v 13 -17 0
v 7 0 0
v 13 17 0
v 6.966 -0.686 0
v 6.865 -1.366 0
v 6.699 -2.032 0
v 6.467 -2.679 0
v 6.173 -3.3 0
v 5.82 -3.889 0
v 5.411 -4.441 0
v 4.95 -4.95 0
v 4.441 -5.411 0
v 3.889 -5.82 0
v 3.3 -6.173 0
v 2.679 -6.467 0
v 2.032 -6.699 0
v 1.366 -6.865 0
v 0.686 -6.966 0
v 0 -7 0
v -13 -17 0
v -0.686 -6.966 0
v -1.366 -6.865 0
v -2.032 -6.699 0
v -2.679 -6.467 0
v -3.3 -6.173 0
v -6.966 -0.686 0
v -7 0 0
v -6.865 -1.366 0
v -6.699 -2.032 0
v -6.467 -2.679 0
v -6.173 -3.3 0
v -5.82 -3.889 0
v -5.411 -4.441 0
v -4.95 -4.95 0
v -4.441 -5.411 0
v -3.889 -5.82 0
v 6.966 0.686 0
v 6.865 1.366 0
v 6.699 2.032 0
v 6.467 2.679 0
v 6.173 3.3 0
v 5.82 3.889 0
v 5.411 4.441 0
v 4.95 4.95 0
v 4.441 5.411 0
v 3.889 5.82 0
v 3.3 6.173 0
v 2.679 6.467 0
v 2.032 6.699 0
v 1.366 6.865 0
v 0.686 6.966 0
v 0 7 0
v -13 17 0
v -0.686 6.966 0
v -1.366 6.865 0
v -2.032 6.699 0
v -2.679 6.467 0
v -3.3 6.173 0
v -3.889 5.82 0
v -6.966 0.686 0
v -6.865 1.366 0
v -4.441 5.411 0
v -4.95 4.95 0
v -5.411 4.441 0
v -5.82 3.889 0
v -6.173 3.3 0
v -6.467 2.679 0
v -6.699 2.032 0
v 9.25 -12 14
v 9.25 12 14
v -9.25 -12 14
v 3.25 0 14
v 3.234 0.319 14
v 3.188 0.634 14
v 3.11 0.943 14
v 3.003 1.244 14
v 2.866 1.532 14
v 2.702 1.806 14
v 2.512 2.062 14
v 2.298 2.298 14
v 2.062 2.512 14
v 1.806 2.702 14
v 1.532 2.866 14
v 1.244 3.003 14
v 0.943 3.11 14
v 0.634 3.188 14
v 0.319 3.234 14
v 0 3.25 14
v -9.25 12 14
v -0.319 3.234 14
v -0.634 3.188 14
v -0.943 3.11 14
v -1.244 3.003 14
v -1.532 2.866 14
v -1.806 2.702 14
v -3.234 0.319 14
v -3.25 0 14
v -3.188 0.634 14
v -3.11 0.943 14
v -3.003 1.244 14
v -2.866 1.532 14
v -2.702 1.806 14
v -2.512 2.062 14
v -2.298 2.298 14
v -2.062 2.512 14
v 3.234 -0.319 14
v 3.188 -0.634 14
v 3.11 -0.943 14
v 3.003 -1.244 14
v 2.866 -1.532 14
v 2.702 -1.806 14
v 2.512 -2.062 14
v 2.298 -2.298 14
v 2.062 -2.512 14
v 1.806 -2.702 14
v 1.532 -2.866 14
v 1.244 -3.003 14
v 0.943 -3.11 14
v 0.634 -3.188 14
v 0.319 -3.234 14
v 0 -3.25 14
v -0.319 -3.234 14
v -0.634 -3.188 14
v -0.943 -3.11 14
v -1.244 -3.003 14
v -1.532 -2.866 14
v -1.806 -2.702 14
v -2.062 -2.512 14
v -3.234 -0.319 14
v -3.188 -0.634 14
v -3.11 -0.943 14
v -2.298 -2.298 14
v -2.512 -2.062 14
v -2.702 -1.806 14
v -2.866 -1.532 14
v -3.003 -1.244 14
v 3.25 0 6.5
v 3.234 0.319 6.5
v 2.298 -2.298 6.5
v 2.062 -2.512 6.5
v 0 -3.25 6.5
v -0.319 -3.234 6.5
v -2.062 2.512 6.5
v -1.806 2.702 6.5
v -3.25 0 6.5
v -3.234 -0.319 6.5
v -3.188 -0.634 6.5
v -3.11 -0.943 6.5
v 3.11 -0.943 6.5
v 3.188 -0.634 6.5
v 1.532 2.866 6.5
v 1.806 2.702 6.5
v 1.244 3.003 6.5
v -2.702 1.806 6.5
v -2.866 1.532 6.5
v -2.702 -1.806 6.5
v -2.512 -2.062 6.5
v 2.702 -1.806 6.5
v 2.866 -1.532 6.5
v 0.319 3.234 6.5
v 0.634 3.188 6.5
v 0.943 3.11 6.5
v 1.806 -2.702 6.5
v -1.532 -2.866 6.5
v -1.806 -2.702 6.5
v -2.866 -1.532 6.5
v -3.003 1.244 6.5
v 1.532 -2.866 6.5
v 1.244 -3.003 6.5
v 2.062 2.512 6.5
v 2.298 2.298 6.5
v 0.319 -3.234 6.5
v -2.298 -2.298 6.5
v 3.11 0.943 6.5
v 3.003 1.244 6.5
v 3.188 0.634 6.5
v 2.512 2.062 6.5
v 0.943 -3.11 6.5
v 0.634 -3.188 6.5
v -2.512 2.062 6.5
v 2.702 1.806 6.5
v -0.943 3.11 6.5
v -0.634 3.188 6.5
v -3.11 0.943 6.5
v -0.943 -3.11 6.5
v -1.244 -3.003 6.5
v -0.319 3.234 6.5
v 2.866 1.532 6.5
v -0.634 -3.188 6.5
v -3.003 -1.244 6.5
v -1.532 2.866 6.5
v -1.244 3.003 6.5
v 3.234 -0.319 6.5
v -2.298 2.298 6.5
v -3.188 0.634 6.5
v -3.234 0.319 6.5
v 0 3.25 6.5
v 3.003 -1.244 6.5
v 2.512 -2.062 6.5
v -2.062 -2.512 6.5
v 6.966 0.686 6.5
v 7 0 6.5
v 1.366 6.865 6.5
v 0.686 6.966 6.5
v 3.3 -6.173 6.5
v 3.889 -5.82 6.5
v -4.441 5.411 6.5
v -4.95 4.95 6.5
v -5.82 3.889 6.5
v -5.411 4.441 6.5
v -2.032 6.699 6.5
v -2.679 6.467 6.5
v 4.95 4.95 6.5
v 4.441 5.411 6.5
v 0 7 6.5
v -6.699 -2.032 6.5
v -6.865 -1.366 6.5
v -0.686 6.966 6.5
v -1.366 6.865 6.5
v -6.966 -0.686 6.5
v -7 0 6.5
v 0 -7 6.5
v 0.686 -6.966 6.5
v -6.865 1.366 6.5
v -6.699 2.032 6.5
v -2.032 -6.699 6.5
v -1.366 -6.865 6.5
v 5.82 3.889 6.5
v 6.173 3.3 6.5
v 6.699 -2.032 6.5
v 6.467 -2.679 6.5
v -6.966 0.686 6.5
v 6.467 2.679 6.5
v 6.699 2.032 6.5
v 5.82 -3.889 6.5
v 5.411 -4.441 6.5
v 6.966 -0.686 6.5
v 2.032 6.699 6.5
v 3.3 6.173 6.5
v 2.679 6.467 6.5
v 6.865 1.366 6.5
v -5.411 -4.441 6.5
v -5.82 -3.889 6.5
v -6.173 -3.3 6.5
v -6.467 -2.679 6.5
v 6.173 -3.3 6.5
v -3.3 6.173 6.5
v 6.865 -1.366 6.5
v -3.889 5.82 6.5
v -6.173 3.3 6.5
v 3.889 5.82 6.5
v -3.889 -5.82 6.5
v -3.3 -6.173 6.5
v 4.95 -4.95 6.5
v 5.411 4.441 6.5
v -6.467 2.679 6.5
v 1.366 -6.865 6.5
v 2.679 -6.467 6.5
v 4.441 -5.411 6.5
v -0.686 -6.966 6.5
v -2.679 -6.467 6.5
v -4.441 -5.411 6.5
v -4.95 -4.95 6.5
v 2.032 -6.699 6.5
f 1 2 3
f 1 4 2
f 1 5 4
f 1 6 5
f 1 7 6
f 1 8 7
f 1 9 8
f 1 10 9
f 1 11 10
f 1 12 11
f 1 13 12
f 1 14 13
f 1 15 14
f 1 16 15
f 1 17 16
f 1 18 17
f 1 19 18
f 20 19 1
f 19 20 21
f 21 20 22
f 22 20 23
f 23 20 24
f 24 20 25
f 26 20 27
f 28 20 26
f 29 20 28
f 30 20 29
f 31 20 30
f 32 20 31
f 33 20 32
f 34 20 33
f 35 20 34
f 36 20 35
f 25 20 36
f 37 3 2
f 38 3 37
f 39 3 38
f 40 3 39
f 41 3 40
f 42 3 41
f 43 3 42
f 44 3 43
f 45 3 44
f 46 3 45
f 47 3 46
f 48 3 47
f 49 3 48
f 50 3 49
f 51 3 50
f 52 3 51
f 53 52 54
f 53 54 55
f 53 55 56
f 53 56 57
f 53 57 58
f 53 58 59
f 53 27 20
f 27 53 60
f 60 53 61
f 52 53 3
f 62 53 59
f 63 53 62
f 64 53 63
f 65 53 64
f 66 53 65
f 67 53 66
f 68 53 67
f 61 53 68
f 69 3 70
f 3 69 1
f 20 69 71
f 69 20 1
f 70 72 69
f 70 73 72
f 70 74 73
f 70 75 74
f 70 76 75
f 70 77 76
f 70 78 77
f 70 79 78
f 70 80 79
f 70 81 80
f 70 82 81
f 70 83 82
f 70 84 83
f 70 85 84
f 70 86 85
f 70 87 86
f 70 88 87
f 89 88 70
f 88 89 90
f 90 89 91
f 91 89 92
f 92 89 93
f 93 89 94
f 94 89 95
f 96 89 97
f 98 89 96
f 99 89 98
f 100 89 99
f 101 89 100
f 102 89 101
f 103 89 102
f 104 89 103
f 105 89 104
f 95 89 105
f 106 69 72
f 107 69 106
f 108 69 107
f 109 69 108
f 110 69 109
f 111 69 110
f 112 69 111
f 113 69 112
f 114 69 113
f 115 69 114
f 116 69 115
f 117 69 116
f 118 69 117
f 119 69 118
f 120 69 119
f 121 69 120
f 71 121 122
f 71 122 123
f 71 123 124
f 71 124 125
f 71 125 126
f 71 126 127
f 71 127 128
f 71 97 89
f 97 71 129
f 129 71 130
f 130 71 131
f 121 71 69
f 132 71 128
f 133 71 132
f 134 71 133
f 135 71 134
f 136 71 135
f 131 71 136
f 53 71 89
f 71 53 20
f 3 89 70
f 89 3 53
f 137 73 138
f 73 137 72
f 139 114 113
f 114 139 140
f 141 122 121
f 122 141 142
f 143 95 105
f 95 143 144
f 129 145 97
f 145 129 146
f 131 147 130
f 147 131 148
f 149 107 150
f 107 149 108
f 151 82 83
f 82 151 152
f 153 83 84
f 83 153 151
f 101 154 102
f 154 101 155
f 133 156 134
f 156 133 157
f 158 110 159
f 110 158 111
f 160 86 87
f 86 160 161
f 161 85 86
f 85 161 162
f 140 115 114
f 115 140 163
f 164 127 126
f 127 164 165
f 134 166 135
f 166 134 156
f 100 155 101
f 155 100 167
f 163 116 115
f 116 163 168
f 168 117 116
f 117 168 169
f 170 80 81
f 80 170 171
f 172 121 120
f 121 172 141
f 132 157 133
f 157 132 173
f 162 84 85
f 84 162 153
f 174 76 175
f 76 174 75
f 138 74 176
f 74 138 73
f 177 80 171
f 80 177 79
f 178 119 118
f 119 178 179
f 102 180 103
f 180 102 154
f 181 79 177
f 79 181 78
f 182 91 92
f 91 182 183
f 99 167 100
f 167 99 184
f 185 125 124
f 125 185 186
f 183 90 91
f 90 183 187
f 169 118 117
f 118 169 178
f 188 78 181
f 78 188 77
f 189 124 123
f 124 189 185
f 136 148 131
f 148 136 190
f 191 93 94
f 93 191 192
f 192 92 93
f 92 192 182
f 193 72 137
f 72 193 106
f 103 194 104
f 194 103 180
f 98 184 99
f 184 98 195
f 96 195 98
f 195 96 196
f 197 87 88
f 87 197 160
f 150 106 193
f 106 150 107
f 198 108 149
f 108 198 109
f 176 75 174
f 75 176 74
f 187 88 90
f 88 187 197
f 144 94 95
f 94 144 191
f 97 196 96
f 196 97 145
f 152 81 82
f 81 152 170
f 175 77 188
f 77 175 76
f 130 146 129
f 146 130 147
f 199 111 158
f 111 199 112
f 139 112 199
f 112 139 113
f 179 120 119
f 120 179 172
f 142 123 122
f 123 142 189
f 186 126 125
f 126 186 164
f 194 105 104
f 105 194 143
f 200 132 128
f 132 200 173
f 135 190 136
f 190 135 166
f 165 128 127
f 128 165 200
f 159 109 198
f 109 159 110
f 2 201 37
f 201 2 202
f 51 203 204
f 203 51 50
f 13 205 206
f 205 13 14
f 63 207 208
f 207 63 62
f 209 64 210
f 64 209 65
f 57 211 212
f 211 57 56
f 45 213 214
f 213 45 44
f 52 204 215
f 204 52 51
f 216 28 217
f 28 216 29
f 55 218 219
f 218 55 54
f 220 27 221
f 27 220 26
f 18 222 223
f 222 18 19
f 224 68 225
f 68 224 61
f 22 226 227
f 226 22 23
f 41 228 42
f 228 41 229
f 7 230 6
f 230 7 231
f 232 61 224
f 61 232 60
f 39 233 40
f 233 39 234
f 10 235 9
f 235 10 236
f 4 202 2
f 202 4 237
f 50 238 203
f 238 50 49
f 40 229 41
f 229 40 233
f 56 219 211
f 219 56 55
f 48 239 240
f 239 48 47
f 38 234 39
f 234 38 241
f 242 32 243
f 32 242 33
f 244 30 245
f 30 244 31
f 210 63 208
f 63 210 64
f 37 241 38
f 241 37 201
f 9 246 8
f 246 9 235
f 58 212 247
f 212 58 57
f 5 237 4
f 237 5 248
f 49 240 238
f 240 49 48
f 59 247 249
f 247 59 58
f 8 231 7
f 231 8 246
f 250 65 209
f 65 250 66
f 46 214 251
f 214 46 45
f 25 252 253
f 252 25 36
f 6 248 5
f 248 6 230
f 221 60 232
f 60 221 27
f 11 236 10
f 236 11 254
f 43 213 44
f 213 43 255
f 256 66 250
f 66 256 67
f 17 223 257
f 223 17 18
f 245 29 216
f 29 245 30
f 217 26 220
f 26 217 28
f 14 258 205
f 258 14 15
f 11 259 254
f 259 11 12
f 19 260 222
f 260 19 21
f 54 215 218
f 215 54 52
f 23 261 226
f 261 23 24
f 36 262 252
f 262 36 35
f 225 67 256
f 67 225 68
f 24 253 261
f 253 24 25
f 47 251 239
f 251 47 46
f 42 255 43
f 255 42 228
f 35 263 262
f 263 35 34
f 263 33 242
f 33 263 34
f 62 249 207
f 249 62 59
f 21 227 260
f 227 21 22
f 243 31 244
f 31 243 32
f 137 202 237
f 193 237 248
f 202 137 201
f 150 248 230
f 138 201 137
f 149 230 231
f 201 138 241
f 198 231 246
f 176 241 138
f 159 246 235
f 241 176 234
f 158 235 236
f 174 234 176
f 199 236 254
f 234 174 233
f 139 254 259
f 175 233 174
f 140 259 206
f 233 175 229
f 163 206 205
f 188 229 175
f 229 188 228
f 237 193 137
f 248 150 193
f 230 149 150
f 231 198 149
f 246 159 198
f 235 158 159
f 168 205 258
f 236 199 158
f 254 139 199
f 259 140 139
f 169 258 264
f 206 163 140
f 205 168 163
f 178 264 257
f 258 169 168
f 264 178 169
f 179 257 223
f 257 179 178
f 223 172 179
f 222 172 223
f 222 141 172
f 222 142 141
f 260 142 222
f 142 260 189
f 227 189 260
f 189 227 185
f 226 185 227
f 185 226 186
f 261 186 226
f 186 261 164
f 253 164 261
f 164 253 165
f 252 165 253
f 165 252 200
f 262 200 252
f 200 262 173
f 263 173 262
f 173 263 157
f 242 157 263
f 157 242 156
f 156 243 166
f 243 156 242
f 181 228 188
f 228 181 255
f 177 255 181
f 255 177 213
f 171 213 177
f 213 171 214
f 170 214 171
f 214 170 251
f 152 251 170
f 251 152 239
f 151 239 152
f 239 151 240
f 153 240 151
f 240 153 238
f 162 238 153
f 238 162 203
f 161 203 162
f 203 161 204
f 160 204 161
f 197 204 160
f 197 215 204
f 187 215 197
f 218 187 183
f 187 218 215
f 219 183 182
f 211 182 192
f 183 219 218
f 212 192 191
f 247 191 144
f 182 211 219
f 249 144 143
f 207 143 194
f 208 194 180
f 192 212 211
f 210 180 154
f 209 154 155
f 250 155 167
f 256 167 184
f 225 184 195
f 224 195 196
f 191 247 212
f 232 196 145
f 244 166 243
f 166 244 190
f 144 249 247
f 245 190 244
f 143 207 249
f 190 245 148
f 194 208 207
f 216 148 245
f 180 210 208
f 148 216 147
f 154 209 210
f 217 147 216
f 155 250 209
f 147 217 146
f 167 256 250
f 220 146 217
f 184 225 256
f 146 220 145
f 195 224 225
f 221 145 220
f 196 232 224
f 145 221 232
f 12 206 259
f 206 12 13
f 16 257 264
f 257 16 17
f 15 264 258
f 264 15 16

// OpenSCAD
// --- Parameters ---
// All dimensions are in millimeters (mm)

// Main Body Dimensions
top_width = 18.5;      // 2cm across the narrow way
top_length = 24;     // 3cm long
bottom_width = 26;   // 3cm across the narrow way
bottom_length = 34;  // 4cm long
foot_height = 14;    // 1.5cm tall

// Screw Hole Dimensions
screw_hole_dia = 6.5;  // ID of screw hole

// Counterbore (Wider opening at the bottom for a screw head)
counterbore_height = foot_height - 7.5;
counterbore_dia = 14; // Assumed diameter based on image proportions. Change if needed.


// --- Module Definition ---
module typewriter_foot() {
    // Use difference() to create the main body and then subtract the holes
    difference() {
        
        // 1. Main trapezoidal body using polyhedron for precision
        polyhedron(
            points = [
                // Bottom vertices (z=0)
                [-bottom_width/2, -bottom_length/2, 0], // 0: front-left
                [ bottom_width/2, -bottom_length/2, 0], // 1: front-right
                [ bottom_width/2,  bottom_length/2, 0], // 2: back-right
                [-bottom_width/2,  bottom_length/2, 0], // 3: back-left
                // Top vertices (z=foot_height)
                [-top_width/2, -top_length/2, foot_height],    // 4: front-left
                [ top_width/2, -top_length/2, foot_height],    // 5: front-right
                [ top_width/2,  top_length/2, foot_height],    // 6: back-right
                [-top_width/2,  top_length/2, foot_height]     // 7: back-left
            ],
            // Define the 6 faces of the shape using the vertex indices above
            faces = [
                [0, 1, 2, 3], // Bottom face
                [4, 5, 1, 0], // Front face
                [7, 6, 5, 4], // Top face
                [5, 6, 2, 1], // Right face
                [6, 7, 3, 2], // Back face
                [7, 4, 0, 3]  // Left face
            ]
        );
        
        // 2. Center screw hole (goes all the way through)
        // We make it slightly taller than the object to ensure a clean cut
        translate([0, 0, -1]) {
            cylinder(h = foot_height + 2, d = screw_hole_dia, center = false, $fn=64);
        }
        
        // 3. Counterbore (the wider recess at the bottom)
        // Also made slightly taller to ensure a clean cut from the bottom
         translate([0, 0, -1]) {
            cylinder(h = counterbore_height + 1, d = counterbore_dia, center = false, $fn=64);
        }
    }
}


// --- Render the Final Object ---
typewriter_foot();
